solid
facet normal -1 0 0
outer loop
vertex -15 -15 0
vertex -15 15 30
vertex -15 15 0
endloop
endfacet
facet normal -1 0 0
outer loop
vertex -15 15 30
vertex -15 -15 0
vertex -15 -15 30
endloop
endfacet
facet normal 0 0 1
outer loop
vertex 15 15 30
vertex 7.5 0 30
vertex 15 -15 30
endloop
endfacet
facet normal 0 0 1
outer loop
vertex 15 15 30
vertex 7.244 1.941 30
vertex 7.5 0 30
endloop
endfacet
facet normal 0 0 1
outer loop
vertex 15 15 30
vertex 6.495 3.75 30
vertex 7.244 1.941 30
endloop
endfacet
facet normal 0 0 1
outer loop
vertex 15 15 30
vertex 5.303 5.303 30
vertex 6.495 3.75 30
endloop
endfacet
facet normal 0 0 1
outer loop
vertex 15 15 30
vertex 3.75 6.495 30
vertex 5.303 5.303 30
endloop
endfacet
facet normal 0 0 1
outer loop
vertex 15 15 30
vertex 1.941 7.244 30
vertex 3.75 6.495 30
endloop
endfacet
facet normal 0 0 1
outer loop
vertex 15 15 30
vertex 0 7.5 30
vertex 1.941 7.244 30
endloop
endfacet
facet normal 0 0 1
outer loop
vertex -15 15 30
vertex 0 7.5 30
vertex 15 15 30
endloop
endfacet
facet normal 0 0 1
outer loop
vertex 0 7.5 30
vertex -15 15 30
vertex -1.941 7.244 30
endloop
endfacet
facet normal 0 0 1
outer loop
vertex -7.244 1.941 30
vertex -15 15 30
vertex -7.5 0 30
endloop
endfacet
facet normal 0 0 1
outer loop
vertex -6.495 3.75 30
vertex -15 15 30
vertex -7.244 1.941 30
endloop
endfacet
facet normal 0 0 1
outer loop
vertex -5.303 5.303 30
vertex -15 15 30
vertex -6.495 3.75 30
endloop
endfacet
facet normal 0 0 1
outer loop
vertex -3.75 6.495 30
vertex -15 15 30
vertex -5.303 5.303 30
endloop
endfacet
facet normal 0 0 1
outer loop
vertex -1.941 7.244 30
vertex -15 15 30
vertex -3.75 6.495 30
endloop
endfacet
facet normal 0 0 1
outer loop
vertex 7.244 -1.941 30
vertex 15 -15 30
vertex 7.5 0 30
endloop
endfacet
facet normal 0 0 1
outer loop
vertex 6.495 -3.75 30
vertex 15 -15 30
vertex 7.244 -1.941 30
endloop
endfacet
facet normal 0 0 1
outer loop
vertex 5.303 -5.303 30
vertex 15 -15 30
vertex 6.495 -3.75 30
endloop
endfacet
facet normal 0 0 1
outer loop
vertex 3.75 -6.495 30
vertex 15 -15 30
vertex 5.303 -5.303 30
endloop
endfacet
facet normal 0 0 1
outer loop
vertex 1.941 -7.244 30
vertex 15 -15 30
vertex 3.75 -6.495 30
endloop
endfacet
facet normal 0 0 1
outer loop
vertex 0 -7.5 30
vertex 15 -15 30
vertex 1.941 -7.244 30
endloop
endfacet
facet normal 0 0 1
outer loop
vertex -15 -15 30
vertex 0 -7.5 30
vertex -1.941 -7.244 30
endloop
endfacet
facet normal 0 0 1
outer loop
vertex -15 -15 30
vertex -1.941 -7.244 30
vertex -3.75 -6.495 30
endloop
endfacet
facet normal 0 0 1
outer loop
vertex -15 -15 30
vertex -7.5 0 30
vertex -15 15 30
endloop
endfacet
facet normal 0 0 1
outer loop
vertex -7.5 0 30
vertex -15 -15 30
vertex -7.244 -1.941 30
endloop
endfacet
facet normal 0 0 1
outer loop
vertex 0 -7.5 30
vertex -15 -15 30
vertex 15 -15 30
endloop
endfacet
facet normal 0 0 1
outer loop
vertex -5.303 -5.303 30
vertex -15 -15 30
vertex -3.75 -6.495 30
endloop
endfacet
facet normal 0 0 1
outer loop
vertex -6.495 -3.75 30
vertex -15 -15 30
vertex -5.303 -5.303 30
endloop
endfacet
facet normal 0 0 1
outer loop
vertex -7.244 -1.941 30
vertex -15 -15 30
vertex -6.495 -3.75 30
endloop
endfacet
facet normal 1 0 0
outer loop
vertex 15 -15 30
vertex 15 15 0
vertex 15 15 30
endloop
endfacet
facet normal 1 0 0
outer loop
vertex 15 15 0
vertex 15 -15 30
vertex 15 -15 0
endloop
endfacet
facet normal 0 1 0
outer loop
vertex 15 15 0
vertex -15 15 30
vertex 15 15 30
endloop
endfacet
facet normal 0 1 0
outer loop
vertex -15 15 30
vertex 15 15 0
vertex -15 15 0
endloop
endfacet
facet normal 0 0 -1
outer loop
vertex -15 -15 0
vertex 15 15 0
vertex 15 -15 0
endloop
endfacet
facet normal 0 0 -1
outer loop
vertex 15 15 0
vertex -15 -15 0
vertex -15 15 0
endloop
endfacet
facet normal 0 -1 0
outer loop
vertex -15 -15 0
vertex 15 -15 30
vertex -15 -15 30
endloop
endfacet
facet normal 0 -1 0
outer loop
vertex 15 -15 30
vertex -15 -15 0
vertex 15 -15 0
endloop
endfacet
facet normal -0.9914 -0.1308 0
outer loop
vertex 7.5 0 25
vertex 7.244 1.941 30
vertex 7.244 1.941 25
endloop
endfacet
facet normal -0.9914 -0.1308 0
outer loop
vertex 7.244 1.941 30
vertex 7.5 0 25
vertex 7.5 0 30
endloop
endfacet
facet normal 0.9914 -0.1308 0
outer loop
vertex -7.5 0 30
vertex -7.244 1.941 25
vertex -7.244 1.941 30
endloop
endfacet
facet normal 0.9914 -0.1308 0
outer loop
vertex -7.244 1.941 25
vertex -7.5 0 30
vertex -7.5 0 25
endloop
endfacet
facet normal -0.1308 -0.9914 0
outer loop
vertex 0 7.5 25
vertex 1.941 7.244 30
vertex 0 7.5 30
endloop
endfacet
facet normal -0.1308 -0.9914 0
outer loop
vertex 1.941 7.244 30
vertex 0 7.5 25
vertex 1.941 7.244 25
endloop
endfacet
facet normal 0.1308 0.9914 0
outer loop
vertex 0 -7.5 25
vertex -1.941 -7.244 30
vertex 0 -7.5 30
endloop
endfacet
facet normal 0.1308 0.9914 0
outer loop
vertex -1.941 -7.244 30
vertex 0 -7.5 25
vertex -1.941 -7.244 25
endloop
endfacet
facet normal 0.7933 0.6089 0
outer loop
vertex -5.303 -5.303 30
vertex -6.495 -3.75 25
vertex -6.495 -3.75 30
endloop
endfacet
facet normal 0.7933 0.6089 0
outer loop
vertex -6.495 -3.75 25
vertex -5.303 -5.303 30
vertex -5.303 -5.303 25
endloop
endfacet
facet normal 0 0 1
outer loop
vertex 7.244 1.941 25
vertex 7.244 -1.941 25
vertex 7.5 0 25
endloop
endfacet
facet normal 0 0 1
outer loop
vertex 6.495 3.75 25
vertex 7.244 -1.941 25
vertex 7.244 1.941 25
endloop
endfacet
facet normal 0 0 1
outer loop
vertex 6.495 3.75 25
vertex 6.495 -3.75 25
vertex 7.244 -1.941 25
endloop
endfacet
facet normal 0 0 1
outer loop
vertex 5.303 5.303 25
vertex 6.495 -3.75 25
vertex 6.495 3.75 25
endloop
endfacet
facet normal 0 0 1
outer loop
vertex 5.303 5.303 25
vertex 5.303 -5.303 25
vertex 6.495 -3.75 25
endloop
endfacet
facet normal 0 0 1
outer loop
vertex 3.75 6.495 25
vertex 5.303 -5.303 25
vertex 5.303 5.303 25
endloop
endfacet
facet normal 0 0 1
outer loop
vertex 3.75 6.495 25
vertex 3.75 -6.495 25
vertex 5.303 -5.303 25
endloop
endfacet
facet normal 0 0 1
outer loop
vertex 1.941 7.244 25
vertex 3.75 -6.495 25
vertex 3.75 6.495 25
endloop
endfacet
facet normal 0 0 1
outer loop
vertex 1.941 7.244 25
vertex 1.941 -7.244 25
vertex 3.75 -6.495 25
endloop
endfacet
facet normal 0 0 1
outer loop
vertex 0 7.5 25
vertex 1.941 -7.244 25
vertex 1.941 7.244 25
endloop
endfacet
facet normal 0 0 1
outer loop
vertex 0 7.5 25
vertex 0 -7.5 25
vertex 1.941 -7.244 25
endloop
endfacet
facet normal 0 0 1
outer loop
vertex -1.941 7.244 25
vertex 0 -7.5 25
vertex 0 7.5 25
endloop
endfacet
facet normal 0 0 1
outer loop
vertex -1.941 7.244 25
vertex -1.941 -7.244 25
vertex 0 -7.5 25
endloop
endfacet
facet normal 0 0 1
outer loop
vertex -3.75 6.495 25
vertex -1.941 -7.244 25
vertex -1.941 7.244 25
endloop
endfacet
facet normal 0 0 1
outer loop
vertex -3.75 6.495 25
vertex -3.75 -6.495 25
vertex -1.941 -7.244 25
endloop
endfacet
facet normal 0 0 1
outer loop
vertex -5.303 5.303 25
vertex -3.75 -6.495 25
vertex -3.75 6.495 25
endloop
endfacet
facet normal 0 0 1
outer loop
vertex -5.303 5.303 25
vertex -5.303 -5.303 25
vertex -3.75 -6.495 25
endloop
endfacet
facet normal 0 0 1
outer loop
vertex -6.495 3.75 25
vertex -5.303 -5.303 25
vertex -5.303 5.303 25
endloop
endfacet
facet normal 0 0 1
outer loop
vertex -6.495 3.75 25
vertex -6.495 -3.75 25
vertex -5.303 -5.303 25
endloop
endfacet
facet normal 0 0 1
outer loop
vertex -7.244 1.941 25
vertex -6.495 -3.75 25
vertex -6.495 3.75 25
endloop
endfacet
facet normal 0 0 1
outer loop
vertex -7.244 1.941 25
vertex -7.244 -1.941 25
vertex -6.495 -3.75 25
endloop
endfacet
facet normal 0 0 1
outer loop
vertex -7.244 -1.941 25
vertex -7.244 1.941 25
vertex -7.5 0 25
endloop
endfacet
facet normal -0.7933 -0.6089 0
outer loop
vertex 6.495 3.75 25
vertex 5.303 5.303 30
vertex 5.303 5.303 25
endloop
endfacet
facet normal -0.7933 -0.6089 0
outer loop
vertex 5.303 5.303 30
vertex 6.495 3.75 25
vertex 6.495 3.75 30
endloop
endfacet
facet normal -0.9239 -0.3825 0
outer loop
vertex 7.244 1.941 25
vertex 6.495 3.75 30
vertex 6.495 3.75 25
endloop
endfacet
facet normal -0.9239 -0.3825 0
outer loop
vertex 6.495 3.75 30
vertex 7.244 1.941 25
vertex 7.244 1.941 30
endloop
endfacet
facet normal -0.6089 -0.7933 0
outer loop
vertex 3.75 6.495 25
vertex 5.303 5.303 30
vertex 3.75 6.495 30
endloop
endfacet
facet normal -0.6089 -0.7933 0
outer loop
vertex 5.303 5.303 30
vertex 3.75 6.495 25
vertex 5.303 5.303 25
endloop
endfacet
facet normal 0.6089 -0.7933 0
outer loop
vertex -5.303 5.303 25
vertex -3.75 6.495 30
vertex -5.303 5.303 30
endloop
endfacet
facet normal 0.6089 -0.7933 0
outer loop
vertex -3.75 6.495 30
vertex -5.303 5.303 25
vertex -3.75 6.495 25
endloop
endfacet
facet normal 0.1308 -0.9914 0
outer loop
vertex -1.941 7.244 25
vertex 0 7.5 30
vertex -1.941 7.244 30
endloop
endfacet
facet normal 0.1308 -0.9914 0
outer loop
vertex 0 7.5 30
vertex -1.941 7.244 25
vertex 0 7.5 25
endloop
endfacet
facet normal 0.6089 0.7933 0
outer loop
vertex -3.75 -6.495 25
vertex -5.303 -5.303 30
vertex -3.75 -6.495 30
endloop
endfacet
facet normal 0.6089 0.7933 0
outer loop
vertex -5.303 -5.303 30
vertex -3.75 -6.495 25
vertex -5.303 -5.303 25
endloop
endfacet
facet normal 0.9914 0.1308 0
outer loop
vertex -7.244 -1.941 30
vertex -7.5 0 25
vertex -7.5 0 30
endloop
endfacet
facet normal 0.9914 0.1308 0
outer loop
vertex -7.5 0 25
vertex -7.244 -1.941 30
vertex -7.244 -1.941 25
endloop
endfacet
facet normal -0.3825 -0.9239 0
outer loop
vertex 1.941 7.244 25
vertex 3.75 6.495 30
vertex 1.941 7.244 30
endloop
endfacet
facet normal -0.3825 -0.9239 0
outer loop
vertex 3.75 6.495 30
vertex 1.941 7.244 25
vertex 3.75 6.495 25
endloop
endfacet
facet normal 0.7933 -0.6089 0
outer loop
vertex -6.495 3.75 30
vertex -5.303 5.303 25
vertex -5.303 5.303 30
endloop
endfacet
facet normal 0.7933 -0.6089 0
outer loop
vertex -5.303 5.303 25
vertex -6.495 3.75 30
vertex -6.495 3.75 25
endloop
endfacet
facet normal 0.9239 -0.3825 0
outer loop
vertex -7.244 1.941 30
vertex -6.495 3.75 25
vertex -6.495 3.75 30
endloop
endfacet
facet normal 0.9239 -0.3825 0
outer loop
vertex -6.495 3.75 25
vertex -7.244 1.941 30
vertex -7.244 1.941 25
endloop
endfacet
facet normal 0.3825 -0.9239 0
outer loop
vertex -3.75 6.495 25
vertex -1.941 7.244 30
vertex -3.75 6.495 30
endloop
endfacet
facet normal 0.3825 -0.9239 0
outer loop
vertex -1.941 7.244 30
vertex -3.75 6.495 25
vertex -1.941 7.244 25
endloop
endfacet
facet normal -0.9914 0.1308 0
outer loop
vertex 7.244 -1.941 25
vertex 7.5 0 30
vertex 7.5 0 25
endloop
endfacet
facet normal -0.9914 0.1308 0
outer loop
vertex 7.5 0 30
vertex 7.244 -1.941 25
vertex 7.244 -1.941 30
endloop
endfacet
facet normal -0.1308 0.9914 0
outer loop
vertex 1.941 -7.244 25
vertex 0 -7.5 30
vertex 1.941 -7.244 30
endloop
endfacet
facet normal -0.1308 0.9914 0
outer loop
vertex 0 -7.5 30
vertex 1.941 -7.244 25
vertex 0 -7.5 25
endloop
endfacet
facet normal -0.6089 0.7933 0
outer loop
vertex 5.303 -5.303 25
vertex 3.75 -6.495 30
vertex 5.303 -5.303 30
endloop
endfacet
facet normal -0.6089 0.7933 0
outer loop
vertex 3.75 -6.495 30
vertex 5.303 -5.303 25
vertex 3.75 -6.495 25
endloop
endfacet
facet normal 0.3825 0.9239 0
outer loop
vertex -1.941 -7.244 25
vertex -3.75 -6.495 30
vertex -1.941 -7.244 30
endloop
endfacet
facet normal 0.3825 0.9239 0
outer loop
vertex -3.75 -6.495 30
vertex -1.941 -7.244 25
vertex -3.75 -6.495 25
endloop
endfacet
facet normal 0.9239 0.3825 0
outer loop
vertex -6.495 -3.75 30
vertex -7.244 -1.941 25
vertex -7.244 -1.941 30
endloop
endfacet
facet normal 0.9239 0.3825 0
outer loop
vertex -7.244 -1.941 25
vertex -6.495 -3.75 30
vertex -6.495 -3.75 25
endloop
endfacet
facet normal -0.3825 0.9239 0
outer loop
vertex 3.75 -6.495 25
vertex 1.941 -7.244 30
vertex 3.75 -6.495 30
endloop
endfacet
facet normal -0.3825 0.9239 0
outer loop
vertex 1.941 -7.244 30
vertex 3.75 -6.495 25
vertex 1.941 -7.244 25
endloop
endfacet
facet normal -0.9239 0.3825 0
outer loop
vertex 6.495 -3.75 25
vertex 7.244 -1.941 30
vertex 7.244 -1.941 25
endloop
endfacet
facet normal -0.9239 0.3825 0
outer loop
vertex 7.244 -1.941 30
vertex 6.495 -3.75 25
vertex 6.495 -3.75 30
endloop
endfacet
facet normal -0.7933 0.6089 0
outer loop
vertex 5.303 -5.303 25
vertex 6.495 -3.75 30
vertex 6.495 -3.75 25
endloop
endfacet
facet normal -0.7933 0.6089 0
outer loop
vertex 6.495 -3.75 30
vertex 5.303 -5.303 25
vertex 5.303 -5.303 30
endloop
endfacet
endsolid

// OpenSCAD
cube_size = 30; // [10:Small,20:Medium,30:Large]

hole_diameter = 15; 
hole_radius = hole_diameter/2;

// How deep should the center hole be?
hole_depth = 5; // [0,1,5,50]

show_wheels = "no"; // [yes,no]

// How thick should the side wheels be?
wheel_thickness = 1; // [1:40]

// ignore this variable!
// foo=1;

// don't turn functions into params!
function BEZ03(u) = pow((1-u), 3);

// ignore variable values
bing = 3+4;
baz = 3 / hole_depth;

difference() {
  union() {
    translate([0, 0, cube_size/2]) cube([cube_size,cube_size,cube_size], center=true);
    if (show_wheels == "yes") {
      translate([0, 0, cube_size/2]) rotate([0, 90, 0]) {
        cylinder(r=cube_size/2, h=cube_size+(wheel_thickness*2), center=true);
      }
    }
  }
  translate([0, 0, cube_size-hole_depth]) cylinder(r=hole_radius, h=hole_depth);
}
        
